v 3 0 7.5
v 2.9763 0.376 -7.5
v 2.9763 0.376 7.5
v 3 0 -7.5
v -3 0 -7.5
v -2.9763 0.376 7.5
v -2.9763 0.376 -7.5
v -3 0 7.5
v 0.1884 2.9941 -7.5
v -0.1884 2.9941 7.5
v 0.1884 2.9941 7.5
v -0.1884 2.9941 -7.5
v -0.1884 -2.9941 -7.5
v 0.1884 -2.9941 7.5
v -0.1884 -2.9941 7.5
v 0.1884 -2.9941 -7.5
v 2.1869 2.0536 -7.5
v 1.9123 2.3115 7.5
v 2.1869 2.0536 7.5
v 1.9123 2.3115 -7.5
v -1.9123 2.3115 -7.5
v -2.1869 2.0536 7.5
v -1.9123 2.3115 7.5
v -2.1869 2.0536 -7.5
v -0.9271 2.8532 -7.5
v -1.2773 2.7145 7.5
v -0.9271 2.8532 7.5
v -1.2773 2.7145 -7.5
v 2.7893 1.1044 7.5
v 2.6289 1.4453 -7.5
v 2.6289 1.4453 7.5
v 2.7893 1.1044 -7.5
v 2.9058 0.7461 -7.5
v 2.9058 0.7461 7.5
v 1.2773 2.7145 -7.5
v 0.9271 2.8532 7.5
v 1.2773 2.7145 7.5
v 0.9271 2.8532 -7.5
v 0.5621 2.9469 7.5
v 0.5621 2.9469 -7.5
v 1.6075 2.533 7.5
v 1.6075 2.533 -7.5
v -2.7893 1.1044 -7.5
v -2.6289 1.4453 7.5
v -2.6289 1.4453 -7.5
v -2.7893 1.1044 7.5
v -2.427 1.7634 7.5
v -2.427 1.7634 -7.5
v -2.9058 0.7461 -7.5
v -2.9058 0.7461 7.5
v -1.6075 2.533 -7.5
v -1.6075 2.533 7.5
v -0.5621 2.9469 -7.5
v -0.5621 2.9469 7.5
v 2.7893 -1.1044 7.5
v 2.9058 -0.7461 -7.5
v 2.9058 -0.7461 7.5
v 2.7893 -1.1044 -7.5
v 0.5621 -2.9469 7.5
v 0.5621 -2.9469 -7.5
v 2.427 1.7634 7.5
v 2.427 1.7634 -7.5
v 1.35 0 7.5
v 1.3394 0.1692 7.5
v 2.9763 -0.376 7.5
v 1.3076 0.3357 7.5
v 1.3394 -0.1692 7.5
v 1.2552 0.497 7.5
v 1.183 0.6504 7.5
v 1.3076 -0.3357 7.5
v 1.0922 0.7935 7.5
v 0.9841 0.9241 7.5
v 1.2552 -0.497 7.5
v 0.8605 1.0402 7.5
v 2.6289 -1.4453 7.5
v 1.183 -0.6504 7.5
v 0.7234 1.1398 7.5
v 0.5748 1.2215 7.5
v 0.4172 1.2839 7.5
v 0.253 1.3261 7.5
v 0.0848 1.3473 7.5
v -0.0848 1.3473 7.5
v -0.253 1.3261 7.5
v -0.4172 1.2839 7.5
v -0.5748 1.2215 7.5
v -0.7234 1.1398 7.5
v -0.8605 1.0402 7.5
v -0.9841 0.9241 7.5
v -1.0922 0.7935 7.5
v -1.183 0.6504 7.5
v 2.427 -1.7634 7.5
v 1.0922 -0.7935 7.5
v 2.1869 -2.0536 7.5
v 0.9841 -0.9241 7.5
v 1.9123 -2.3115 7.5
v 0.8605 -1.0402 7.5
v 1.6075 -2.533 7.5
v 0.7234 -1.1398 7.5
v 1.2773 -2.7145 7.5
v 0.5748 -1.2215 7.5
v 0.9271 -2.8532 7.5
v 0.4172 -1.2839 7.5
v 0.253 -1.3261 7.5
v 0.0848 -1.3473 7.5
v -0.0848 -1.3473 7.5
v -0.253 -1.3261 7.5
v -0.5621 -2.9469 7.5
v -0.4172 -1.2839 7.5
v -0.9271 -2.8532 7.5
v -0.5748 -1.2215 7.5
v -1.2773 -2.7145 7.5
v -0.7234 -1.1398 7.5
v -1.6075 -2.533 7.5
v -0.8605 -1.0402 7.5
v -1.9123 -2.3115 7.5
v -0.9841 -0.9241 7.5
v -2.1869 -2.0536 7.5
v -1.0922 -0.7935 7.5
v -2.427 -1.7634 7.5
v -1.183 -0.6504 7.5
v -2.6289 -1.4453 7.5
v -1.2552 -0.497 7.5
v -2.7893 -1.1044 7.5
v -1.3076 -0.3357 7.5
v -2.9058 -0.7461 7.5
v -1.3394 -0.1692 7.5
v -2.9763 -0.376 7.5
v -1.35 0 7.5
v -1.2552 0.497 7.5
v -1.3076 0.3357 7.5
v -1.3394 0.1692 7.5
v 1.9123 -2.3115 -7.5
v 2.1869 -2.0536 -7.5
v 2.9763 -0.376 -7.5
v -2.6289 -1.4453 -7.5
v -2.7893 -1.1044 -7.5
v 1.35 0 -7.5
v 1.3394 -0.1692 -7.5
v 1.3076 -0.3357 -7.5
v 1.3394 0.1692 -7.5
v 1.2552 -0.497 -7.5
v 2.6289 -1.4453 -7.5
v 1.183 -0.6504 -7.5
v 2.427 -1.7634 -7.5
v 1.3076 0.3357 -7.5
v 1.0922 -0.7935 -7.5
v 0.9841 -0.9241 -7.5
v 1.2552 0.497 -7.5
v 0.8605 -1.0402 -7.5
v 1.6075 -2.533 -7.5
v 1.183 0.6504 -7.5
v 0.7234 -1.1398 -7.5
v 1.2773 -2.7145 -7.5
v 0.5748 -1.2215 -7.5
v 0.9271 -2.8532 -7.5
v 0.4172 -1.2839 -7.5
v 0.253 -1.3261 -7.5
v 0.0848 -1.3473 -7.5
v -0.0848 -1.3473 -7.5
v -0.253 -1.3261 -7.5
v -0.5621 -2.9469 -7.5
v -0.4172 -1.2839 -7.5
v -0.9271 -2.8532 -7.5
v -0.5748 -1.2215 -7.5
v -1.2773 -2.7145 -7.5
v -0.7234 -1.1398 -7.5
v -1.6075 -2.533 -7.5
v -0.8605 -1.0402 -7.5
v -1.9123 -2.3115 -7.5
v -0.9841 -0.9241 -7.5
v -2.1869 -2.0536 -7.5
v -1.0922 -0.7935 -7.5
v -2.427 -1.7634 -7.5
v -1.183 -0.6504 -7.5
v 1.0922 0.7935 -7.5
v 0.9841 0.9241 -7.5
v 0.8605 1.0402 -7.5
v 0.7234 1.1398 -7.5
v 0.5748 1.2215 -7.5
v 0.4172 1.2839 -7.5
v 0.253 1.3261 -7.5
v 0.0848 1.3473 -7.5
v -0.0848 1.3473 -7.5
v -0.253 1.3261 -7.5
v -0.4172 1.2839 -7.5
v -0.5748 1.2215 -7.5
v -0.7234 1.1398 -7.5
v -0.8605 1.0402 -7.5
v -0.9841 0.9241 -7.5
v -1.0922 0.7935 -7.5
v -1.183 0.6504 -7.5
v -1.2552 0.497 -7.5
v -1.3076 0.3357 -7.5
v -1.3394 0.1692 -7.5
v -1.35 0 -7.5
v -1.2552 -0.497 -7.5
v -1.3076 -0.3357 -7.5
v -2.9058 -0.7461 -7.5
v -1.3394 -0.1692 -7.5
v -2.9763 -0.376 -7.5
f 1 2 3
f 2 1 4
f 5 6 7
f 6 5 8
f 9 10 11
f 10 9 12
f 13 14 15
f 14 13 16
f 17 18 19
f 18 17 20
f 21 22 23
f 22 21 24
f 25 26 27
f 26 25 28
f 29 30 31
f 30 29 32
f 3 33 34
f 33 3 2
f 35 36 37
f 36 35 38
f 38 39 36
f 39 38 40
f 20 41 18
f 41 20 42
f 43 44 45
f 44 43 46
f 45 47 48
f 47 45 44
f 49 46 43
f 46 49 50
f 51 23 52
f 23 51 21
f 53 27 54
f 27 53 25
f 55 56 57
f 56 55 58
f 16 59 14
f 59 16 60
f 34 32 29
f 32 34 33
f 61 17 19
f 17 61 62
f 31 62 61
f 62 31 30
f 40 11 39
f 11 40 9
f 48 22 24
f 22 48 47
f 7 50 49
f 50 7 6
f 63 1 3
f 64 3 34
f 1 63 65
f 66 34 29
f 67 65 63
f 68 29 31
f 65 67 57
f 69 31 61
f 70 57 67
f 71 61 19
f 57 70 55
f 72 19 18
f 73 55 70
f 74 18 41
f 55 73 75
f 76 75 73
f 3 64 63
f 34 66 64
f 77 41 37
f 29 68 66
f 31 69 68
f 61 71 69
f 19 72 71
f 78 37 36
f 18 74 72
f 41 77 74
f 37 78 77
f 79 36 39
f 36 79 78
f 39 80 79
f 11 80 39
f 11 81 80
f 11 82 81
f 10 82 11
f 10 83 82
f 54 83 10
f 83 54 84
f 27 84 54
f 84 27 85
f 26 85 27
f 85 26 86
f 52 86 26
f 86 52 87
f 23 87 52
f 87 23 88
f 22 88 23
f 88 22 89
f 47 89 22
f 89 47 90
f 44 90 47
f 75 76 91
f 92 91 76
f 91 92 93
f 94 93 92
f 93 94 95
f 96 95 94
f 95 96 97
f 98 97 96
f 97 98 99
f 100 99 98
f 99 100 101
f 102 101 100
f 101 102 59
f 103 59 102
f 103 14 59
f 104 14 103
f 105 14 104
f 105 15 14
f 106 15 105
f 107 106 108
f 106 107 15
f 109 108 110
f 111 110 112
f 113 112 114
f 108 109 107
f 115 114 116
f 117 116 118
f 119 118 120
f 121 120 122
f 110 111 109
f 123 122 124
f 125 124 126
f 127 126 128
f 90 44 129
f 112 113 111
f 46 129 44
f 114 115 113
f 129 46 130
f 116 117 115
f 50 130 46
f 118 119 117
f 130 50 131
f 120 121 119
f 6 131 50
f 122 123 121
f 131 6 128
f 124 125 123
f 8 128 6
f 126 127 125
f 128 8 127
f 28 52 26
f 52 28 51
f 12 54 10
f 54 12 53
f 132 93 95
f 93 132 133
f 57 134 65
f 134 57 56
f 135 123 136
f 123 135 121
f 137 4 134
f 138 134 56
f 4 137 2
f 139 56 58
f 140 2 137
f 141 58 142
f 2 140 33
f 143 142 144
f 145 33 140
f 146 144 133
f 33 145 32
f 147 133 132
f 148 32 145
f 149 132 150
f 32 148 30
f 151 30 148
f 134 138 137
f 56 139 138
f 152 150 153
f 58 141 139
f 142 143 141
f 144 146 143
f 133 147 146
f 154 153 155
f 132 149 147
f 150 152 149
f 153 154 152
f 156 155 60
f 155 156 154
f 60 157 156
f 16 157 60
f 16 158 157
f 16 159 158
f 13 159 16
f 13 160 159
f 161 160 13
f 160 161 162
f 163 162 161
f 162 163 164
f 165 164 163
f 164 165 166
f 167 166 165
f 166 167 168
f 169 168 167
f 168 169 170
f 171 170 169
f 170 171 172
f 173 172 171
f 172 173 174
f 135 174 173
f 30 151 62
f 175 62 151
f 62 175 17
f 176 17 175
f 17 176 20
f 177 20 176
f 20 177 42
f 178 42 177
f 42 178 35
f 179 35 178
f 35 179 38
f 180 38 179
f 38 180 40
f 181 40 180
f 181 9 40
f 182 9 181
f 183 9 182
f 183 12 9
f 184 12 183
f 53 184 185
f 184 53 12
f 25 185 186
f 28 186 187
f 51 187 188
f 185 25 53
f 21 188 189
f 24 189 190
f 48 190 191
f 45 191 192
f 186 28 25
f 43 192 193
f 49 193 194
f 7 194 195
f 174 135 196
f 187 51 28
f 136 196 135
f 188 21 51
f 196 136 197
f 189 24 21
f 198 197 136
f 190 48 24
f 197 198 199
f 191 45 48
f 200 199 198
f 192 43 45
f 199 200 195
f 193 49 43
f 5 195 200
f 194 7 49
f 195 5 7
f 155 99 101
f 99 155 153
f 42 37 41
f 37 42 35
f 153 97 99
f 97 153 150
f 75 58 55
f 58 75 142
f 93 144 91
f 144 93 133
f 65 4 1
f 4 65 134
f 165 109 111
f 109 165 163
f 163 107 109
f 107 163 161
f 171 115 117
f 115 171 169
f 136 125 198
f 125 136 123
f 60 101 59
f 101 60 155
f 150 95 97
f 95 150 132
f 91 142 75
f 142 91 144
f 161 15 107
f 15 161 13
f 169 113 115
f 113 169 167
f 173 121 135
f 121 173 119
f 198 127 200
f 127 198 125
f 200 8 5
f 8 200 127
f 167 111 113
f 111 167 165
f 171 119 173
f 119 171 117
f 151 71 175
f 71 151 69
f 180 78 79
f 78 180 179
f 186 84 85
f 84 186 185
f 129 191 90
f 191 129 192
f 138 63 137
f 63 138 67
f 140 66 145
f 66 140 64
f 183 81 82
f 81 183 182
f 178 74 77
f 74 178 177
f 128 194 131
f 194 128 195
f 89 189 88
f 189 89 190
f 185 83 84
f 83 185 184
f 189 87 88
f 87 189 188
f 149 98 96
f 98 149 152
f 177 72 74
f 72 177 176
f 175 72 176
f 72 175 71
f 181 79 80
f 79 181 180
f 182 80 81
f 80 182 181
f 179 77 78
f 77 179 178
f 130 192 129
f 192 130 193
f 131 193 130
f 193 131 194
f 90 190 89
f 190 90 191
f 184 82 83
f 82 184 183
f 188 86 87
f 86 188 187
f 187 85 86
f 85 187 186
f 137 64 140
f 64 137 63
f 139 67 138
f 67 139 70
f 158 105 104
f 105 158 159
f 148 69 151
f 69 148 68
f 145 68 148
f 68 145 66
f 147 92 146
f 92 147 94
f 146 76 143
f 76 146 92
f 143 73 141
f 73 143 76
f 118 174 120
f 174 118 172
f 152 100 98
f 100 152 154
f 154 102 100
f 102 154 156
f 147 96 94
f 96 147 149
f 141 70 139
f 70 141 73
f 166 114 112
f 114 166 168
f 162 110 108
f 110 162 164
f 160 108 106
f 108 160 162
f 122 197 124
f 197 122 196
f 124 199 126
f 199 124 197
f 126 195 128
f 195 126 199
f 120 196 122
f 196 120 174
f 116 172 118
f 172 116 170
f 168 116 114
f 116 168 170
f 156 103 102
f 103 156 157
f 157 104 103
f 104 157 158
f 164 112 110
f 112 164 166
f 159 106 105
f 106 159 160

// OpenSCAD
$fn = 50;


difference() {
	union() {
		translate(v = [0, 0, -7.5000000000]) {
			cylinder(h = 15, r = 3.0000000000);
		}
	}
	union() {
		translate(v = [0, 0, -100.0000000000]) {
			cylinder(h = 200, r = 1.3500000000);
		}
	}
}
